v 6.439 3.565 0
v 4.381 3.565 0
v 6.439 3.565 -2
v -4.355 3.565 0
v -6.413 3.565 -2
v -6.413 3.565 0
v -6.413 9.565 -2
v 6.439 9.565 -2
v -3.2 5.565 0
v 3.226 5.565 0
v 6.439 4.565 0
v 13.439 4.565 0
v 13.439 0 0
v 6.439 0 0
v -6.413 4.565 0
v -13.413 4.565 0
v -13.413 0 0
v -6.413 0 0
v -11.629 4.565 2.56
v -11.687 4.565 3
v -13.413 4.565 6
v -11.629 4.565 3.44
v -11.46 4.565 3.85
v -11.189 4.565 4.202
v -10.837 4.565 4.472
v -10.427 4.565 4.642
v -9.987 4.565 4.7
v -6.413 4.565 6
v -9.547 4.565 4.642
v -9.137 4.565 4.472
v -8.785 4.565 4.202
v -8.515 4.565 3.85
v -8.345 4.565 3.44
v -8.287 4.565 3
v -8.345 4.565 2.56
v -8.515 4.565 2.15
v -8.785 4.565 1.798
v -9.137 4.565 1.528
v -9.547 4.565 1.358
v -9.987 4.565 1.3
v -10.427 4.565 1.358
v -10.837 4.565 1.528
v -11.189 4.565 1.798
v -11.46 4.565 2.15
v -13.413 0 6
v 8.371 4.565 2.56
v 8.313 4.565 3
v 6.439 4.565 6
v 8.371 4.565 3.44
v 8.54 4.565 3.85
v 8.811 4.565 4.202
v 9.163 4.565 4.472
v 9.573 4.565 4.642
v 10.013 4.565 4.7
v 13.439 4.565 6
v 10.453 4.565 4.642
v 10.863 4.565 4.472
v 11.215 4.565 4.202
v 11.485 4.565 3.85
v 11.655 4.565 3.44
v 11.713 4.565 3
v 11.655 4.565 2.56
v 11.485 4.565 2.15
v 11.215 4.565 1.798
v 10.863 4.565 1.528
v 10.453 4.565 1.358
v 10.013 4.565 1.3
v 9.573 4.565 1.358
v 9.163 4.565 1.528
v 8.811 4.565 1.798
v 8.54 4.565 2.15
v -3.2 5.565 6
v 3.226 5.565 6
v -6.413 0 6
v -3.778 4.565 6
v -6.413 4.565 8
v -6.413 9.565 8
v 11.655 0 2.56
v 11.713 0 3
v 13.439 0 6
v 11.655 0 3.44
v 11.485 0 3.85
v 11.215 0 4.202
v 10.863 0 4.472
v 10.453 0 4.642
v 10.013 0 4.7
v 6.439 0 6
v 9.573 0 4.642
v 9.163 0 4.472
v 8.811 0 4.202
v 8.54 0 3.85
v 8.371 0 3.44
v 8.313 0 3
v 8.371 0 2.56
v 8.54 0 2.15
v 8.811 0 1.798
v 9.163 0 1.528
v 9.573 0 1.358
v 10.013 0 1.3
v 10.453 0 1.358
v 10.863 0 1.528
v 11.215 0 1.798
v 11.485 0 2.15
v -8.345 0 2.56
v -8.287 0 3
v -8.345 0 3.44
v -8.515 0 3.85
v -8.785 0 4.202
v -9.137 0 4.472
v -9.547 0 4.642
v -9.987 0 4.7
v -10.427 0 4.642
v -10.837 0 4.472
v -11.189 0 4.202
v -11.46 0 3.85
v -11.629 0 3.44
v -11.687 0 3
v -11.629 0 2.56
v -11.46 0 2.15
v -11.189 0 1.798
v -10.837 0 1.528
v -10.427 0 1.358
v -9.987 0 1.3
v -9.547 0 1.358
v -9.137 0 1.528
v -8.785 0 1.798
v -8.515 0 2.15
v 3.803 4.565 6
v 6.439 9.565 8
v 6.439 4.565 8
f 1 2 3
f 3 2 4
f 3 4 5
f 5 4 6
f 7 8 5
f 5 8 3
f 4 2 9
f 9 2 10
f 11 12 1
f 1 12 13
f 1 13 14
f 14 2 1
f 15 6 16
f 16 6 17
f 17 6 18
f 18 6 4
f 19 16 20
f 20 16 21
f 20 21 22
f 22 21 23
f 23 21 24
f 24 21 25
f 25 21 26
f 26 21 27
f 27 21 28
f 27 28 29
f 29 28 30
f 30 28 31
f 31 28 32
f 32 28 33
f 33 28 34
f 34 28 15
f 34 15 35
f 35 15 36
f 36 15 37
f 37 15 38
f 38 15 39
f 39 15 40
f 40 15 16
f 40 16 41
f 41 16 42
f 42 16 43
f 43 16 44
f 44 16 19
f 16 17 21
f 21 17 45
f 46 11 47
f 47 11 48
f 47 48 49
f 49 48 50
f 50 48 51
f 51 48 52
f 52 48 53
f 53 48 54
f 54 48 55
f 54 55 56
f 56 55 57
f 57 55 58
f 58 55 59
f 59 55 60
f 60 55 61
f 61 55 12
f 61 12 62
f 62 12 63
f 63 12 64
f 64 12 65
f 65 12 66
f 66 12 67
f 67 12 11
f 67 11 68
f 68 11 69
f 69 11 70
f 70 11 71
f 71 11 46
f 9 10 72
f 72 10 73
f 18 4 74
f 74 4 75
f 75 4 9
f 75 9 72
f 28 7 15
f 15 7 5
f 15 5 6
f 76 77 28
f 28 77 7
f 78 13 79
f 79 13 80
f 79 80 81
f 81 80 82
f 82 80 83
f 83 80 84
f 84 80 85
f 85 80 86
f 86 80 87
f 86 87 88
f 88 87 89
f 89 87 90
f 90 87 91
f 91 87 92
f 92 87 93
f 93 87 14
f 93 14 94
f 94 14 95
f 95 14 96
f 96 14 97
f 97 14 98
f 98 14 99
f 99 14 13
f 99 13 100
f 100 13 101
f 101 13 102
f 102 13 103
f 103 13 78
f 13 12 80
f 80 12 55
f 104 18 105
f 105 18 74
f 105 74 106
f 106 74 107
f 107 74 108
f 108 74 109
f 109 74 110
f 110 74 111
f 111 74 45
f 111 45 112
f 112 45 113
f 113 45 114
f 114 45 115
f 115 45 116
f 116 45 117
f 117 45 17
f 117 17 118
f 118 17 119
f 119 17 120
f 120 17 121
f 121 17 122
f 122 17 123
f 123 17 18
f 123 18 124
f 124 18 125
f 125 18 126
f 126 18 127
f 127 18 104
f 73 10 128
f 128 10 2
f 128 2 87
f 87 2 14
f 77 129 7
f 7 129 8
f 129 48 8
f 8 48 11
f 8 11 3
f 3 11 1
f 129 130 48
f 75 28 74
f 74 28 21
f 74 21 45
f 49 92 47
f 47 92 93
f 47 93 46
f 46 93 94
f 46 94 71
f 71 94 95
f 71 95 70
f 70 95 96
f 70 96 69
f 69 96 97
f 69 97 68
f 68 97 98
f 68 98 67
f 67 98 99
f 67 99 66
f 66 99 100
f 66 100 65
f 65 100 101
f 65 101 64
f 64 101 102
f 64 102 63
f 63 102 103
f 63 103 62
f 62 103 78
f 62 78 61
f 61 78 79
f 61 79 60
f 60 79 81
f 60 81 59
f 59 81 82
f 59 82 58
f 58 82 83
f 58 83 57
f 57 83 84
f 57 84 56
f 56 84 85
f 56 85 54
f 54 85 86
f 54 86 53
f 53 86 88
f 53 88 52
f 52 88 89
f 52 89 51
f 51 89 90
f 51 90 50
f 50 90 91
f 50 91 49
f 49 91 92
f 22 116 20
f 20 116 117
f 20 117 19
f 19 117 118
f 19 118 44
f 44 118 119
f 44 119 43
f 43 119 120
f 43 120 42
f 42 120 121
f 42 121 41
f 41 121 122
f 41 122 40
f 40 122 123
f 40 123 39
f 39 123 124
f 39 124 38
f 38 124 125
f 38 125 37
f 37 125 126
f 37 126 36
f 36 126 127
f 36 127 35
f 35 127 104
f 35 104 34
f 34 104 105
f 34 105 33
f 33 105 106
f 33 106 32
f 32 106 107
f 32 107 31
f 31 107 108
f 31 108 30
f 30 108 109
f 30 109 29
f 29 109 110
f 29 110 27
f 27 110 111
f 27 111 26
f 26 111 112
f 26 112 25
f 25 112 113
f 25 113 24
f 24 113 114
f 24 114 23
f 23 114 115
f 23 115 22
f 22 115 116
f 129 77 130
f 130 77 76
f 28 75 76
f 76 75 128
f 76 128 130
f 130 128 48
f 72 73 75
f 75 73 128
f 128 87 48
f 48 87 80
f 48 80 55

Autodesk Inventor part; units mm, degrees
ref_plane "YZ Plane" through (0, 0, 0) normal (1, 0, 0) x (0, 1, 0)
ref_plane "XZ Plane" through (0, 0, 0) normal (0, 1, 0) x (-1, 0, 0)
ref_plane "XY Plane" through (0, 0, 0) normal (0, 0, 1) x (1, 0, 0)
sketch "Sketch1" plane through (0, 0, 0) normal (0, 0, 1) x (1, 0, 0)
  line L0 (0, 0) -> (-6.4135, 0)
  line L1 (-6.4135, 0) -> (-3.2004, 5.5653)
  line L2 (-3.2004, 5.5653) -> (3.2258, 5.5653)
  line L3 (3.2258, 5.5653) -> (6.4389, 0)
  line L4 (6.4389, 0) -> (3.2258, -5.5653)
  line L5 (3.2258, -5.5653) -> (-3.2004, -5.5653)
  line L6 (-3.2004, -5.5653) -> (-6.4135, 0)
  line L7 (-6.4135, 0) -> (-13.4135, 0)
  line L8 (-6.4135, 0) -> (0.5865, 0) construction
  line L9 (-13.4135, 0) -> (-13.4135, 5.5653)
  line L10 (-13.4135, 5.5653) -> (-13.4135, 9.5653)
  line L11 (-13.4135, 9.5653) -> (13.4389, 9.5653)
  line L12 (13.4389, 9.5653) -> (13.4389, 0)
  line L13 (13.4389, 0) -> (6.4389, 0)
  line L14 (13.4389, 9.5653) -> (13.4389, 4.5653)
  line L15 (13.4389, 4.5653) -> (6.4389, 4.5653)
  line L16 (6.4389, 4.5653) -> (6.4389, 9.5653)
  line L17 (-13.4135, 9.5653) -> (-6.4135, 9.5653)
  line L18 (-6.4135, 9.5653) -> (-6.4135, 4.5653)
  line L19 (-6.4135, 4.5653) -> (-13.4135, 4.5653)
  dimension "d0" = 6.4135
  dimension "d1" = 6.4262
  dimension "d2" = 60
  dimension "d3" = 6.4262
  dimension "d4" = 120
  dimension "d5" = 6.4262
  dimension "d6" = 120
  dimension "d7" = 6.4262
  dimension "d8" = 120
  dimension "d9" = 6.4262
  dimension "d10" = 120
  dimension "d11" = 7
  dimension "d12" = 180
  dimension "d13" = 4
  dimension "d15" = 5
  dimension "d16" = 7
  dimension "d17" = 7
  dimension "d20" = 7
extrude "Extrusion1" add sketch "Sketch1" along normal blind 6 contours L7 L9 L19 L18 L11 L16 L15 L12 L13 L3 L2 L1
sketch "Sketch3" plane through (0, 0, 0) normal (0, 0, -1) x (-1, 0, 0)
  line L0 (-6.4389, 4.5653) -> (-6.4389, 9.5653) projected
  line L1 (-6.4389, 9.5653) -> (-6.4389, 3.5653)
  line L2 (-6.4389, 3.5653) -> (6.4135, 3.5653)
  line L3 (6.4135, 9.5653) -> (6.4135, 4.5653) projected
  line L4 (-6.4389, 9.5653) -> (6.4135, 9.5653) projected
  line L5 (6.4135, 3.5653) -> (6.4135, 9.5653)
  line L6 (6.4135, 9.5653) -> (-6.4389, 9.5653)
  point P0 (0, 0)
  point P1 (6.4135, 4.5653)
  point P2 (-6.4389, 4.5653)
  dimension "d30" = 6
extrude "Extrusion2" add sketch "Sketch3" along normal blind 2
sketch "Sketch4" plane through (-13.4135, 0, 0) normal (0, -1, 0) x (1, 0, 0)
  line L0 (0, 0) -> (0, 6) projected
  line L1 (0, 3) -> (26.8524, 3)
  line L2 (26.8524, 0) -> (26.8524, 6) projected
  line L3 (13.4262, 3) -> (3.4262, 3)
  line L4 (3.4262, 3) -> (23.4262, 3)
  point P0 (13.4135, 0)
  dimension "d36" = 10
  dimension "d37" = 20
  dimension "d38" = 0
hole "Hole2" at (-9.9873, 0, 3) at (10.0127, 0, 3) direction (0, 1, 0) diameter 3.4 end through all clearance for "Flat Head Machine Screw" size "M3" standard "Ansi Metric M Profile"
sketch "Sketch5" plane through (-6.4135, 9.5653, 6) normal (0, 1, 0) x (1, 0, 0)
  line L0 (12.8524, 6) -> (12.8524, 0) projected
  line L1 (12.8524, 0) -> (0, 0)
  line L2 (0, 0) -> (0, -2)
  line L3 (0, -2) -> (12.8524, -2)
  line L4 (12.8524, -2) -> (12.8524, 0)
  point P0 (6.4135, 6)
  dimension "d46" = 2
extrude "Extrusion3" add sketch "Sketch5" against normal blind 5
properties part number "shell 1.0 screw top"
